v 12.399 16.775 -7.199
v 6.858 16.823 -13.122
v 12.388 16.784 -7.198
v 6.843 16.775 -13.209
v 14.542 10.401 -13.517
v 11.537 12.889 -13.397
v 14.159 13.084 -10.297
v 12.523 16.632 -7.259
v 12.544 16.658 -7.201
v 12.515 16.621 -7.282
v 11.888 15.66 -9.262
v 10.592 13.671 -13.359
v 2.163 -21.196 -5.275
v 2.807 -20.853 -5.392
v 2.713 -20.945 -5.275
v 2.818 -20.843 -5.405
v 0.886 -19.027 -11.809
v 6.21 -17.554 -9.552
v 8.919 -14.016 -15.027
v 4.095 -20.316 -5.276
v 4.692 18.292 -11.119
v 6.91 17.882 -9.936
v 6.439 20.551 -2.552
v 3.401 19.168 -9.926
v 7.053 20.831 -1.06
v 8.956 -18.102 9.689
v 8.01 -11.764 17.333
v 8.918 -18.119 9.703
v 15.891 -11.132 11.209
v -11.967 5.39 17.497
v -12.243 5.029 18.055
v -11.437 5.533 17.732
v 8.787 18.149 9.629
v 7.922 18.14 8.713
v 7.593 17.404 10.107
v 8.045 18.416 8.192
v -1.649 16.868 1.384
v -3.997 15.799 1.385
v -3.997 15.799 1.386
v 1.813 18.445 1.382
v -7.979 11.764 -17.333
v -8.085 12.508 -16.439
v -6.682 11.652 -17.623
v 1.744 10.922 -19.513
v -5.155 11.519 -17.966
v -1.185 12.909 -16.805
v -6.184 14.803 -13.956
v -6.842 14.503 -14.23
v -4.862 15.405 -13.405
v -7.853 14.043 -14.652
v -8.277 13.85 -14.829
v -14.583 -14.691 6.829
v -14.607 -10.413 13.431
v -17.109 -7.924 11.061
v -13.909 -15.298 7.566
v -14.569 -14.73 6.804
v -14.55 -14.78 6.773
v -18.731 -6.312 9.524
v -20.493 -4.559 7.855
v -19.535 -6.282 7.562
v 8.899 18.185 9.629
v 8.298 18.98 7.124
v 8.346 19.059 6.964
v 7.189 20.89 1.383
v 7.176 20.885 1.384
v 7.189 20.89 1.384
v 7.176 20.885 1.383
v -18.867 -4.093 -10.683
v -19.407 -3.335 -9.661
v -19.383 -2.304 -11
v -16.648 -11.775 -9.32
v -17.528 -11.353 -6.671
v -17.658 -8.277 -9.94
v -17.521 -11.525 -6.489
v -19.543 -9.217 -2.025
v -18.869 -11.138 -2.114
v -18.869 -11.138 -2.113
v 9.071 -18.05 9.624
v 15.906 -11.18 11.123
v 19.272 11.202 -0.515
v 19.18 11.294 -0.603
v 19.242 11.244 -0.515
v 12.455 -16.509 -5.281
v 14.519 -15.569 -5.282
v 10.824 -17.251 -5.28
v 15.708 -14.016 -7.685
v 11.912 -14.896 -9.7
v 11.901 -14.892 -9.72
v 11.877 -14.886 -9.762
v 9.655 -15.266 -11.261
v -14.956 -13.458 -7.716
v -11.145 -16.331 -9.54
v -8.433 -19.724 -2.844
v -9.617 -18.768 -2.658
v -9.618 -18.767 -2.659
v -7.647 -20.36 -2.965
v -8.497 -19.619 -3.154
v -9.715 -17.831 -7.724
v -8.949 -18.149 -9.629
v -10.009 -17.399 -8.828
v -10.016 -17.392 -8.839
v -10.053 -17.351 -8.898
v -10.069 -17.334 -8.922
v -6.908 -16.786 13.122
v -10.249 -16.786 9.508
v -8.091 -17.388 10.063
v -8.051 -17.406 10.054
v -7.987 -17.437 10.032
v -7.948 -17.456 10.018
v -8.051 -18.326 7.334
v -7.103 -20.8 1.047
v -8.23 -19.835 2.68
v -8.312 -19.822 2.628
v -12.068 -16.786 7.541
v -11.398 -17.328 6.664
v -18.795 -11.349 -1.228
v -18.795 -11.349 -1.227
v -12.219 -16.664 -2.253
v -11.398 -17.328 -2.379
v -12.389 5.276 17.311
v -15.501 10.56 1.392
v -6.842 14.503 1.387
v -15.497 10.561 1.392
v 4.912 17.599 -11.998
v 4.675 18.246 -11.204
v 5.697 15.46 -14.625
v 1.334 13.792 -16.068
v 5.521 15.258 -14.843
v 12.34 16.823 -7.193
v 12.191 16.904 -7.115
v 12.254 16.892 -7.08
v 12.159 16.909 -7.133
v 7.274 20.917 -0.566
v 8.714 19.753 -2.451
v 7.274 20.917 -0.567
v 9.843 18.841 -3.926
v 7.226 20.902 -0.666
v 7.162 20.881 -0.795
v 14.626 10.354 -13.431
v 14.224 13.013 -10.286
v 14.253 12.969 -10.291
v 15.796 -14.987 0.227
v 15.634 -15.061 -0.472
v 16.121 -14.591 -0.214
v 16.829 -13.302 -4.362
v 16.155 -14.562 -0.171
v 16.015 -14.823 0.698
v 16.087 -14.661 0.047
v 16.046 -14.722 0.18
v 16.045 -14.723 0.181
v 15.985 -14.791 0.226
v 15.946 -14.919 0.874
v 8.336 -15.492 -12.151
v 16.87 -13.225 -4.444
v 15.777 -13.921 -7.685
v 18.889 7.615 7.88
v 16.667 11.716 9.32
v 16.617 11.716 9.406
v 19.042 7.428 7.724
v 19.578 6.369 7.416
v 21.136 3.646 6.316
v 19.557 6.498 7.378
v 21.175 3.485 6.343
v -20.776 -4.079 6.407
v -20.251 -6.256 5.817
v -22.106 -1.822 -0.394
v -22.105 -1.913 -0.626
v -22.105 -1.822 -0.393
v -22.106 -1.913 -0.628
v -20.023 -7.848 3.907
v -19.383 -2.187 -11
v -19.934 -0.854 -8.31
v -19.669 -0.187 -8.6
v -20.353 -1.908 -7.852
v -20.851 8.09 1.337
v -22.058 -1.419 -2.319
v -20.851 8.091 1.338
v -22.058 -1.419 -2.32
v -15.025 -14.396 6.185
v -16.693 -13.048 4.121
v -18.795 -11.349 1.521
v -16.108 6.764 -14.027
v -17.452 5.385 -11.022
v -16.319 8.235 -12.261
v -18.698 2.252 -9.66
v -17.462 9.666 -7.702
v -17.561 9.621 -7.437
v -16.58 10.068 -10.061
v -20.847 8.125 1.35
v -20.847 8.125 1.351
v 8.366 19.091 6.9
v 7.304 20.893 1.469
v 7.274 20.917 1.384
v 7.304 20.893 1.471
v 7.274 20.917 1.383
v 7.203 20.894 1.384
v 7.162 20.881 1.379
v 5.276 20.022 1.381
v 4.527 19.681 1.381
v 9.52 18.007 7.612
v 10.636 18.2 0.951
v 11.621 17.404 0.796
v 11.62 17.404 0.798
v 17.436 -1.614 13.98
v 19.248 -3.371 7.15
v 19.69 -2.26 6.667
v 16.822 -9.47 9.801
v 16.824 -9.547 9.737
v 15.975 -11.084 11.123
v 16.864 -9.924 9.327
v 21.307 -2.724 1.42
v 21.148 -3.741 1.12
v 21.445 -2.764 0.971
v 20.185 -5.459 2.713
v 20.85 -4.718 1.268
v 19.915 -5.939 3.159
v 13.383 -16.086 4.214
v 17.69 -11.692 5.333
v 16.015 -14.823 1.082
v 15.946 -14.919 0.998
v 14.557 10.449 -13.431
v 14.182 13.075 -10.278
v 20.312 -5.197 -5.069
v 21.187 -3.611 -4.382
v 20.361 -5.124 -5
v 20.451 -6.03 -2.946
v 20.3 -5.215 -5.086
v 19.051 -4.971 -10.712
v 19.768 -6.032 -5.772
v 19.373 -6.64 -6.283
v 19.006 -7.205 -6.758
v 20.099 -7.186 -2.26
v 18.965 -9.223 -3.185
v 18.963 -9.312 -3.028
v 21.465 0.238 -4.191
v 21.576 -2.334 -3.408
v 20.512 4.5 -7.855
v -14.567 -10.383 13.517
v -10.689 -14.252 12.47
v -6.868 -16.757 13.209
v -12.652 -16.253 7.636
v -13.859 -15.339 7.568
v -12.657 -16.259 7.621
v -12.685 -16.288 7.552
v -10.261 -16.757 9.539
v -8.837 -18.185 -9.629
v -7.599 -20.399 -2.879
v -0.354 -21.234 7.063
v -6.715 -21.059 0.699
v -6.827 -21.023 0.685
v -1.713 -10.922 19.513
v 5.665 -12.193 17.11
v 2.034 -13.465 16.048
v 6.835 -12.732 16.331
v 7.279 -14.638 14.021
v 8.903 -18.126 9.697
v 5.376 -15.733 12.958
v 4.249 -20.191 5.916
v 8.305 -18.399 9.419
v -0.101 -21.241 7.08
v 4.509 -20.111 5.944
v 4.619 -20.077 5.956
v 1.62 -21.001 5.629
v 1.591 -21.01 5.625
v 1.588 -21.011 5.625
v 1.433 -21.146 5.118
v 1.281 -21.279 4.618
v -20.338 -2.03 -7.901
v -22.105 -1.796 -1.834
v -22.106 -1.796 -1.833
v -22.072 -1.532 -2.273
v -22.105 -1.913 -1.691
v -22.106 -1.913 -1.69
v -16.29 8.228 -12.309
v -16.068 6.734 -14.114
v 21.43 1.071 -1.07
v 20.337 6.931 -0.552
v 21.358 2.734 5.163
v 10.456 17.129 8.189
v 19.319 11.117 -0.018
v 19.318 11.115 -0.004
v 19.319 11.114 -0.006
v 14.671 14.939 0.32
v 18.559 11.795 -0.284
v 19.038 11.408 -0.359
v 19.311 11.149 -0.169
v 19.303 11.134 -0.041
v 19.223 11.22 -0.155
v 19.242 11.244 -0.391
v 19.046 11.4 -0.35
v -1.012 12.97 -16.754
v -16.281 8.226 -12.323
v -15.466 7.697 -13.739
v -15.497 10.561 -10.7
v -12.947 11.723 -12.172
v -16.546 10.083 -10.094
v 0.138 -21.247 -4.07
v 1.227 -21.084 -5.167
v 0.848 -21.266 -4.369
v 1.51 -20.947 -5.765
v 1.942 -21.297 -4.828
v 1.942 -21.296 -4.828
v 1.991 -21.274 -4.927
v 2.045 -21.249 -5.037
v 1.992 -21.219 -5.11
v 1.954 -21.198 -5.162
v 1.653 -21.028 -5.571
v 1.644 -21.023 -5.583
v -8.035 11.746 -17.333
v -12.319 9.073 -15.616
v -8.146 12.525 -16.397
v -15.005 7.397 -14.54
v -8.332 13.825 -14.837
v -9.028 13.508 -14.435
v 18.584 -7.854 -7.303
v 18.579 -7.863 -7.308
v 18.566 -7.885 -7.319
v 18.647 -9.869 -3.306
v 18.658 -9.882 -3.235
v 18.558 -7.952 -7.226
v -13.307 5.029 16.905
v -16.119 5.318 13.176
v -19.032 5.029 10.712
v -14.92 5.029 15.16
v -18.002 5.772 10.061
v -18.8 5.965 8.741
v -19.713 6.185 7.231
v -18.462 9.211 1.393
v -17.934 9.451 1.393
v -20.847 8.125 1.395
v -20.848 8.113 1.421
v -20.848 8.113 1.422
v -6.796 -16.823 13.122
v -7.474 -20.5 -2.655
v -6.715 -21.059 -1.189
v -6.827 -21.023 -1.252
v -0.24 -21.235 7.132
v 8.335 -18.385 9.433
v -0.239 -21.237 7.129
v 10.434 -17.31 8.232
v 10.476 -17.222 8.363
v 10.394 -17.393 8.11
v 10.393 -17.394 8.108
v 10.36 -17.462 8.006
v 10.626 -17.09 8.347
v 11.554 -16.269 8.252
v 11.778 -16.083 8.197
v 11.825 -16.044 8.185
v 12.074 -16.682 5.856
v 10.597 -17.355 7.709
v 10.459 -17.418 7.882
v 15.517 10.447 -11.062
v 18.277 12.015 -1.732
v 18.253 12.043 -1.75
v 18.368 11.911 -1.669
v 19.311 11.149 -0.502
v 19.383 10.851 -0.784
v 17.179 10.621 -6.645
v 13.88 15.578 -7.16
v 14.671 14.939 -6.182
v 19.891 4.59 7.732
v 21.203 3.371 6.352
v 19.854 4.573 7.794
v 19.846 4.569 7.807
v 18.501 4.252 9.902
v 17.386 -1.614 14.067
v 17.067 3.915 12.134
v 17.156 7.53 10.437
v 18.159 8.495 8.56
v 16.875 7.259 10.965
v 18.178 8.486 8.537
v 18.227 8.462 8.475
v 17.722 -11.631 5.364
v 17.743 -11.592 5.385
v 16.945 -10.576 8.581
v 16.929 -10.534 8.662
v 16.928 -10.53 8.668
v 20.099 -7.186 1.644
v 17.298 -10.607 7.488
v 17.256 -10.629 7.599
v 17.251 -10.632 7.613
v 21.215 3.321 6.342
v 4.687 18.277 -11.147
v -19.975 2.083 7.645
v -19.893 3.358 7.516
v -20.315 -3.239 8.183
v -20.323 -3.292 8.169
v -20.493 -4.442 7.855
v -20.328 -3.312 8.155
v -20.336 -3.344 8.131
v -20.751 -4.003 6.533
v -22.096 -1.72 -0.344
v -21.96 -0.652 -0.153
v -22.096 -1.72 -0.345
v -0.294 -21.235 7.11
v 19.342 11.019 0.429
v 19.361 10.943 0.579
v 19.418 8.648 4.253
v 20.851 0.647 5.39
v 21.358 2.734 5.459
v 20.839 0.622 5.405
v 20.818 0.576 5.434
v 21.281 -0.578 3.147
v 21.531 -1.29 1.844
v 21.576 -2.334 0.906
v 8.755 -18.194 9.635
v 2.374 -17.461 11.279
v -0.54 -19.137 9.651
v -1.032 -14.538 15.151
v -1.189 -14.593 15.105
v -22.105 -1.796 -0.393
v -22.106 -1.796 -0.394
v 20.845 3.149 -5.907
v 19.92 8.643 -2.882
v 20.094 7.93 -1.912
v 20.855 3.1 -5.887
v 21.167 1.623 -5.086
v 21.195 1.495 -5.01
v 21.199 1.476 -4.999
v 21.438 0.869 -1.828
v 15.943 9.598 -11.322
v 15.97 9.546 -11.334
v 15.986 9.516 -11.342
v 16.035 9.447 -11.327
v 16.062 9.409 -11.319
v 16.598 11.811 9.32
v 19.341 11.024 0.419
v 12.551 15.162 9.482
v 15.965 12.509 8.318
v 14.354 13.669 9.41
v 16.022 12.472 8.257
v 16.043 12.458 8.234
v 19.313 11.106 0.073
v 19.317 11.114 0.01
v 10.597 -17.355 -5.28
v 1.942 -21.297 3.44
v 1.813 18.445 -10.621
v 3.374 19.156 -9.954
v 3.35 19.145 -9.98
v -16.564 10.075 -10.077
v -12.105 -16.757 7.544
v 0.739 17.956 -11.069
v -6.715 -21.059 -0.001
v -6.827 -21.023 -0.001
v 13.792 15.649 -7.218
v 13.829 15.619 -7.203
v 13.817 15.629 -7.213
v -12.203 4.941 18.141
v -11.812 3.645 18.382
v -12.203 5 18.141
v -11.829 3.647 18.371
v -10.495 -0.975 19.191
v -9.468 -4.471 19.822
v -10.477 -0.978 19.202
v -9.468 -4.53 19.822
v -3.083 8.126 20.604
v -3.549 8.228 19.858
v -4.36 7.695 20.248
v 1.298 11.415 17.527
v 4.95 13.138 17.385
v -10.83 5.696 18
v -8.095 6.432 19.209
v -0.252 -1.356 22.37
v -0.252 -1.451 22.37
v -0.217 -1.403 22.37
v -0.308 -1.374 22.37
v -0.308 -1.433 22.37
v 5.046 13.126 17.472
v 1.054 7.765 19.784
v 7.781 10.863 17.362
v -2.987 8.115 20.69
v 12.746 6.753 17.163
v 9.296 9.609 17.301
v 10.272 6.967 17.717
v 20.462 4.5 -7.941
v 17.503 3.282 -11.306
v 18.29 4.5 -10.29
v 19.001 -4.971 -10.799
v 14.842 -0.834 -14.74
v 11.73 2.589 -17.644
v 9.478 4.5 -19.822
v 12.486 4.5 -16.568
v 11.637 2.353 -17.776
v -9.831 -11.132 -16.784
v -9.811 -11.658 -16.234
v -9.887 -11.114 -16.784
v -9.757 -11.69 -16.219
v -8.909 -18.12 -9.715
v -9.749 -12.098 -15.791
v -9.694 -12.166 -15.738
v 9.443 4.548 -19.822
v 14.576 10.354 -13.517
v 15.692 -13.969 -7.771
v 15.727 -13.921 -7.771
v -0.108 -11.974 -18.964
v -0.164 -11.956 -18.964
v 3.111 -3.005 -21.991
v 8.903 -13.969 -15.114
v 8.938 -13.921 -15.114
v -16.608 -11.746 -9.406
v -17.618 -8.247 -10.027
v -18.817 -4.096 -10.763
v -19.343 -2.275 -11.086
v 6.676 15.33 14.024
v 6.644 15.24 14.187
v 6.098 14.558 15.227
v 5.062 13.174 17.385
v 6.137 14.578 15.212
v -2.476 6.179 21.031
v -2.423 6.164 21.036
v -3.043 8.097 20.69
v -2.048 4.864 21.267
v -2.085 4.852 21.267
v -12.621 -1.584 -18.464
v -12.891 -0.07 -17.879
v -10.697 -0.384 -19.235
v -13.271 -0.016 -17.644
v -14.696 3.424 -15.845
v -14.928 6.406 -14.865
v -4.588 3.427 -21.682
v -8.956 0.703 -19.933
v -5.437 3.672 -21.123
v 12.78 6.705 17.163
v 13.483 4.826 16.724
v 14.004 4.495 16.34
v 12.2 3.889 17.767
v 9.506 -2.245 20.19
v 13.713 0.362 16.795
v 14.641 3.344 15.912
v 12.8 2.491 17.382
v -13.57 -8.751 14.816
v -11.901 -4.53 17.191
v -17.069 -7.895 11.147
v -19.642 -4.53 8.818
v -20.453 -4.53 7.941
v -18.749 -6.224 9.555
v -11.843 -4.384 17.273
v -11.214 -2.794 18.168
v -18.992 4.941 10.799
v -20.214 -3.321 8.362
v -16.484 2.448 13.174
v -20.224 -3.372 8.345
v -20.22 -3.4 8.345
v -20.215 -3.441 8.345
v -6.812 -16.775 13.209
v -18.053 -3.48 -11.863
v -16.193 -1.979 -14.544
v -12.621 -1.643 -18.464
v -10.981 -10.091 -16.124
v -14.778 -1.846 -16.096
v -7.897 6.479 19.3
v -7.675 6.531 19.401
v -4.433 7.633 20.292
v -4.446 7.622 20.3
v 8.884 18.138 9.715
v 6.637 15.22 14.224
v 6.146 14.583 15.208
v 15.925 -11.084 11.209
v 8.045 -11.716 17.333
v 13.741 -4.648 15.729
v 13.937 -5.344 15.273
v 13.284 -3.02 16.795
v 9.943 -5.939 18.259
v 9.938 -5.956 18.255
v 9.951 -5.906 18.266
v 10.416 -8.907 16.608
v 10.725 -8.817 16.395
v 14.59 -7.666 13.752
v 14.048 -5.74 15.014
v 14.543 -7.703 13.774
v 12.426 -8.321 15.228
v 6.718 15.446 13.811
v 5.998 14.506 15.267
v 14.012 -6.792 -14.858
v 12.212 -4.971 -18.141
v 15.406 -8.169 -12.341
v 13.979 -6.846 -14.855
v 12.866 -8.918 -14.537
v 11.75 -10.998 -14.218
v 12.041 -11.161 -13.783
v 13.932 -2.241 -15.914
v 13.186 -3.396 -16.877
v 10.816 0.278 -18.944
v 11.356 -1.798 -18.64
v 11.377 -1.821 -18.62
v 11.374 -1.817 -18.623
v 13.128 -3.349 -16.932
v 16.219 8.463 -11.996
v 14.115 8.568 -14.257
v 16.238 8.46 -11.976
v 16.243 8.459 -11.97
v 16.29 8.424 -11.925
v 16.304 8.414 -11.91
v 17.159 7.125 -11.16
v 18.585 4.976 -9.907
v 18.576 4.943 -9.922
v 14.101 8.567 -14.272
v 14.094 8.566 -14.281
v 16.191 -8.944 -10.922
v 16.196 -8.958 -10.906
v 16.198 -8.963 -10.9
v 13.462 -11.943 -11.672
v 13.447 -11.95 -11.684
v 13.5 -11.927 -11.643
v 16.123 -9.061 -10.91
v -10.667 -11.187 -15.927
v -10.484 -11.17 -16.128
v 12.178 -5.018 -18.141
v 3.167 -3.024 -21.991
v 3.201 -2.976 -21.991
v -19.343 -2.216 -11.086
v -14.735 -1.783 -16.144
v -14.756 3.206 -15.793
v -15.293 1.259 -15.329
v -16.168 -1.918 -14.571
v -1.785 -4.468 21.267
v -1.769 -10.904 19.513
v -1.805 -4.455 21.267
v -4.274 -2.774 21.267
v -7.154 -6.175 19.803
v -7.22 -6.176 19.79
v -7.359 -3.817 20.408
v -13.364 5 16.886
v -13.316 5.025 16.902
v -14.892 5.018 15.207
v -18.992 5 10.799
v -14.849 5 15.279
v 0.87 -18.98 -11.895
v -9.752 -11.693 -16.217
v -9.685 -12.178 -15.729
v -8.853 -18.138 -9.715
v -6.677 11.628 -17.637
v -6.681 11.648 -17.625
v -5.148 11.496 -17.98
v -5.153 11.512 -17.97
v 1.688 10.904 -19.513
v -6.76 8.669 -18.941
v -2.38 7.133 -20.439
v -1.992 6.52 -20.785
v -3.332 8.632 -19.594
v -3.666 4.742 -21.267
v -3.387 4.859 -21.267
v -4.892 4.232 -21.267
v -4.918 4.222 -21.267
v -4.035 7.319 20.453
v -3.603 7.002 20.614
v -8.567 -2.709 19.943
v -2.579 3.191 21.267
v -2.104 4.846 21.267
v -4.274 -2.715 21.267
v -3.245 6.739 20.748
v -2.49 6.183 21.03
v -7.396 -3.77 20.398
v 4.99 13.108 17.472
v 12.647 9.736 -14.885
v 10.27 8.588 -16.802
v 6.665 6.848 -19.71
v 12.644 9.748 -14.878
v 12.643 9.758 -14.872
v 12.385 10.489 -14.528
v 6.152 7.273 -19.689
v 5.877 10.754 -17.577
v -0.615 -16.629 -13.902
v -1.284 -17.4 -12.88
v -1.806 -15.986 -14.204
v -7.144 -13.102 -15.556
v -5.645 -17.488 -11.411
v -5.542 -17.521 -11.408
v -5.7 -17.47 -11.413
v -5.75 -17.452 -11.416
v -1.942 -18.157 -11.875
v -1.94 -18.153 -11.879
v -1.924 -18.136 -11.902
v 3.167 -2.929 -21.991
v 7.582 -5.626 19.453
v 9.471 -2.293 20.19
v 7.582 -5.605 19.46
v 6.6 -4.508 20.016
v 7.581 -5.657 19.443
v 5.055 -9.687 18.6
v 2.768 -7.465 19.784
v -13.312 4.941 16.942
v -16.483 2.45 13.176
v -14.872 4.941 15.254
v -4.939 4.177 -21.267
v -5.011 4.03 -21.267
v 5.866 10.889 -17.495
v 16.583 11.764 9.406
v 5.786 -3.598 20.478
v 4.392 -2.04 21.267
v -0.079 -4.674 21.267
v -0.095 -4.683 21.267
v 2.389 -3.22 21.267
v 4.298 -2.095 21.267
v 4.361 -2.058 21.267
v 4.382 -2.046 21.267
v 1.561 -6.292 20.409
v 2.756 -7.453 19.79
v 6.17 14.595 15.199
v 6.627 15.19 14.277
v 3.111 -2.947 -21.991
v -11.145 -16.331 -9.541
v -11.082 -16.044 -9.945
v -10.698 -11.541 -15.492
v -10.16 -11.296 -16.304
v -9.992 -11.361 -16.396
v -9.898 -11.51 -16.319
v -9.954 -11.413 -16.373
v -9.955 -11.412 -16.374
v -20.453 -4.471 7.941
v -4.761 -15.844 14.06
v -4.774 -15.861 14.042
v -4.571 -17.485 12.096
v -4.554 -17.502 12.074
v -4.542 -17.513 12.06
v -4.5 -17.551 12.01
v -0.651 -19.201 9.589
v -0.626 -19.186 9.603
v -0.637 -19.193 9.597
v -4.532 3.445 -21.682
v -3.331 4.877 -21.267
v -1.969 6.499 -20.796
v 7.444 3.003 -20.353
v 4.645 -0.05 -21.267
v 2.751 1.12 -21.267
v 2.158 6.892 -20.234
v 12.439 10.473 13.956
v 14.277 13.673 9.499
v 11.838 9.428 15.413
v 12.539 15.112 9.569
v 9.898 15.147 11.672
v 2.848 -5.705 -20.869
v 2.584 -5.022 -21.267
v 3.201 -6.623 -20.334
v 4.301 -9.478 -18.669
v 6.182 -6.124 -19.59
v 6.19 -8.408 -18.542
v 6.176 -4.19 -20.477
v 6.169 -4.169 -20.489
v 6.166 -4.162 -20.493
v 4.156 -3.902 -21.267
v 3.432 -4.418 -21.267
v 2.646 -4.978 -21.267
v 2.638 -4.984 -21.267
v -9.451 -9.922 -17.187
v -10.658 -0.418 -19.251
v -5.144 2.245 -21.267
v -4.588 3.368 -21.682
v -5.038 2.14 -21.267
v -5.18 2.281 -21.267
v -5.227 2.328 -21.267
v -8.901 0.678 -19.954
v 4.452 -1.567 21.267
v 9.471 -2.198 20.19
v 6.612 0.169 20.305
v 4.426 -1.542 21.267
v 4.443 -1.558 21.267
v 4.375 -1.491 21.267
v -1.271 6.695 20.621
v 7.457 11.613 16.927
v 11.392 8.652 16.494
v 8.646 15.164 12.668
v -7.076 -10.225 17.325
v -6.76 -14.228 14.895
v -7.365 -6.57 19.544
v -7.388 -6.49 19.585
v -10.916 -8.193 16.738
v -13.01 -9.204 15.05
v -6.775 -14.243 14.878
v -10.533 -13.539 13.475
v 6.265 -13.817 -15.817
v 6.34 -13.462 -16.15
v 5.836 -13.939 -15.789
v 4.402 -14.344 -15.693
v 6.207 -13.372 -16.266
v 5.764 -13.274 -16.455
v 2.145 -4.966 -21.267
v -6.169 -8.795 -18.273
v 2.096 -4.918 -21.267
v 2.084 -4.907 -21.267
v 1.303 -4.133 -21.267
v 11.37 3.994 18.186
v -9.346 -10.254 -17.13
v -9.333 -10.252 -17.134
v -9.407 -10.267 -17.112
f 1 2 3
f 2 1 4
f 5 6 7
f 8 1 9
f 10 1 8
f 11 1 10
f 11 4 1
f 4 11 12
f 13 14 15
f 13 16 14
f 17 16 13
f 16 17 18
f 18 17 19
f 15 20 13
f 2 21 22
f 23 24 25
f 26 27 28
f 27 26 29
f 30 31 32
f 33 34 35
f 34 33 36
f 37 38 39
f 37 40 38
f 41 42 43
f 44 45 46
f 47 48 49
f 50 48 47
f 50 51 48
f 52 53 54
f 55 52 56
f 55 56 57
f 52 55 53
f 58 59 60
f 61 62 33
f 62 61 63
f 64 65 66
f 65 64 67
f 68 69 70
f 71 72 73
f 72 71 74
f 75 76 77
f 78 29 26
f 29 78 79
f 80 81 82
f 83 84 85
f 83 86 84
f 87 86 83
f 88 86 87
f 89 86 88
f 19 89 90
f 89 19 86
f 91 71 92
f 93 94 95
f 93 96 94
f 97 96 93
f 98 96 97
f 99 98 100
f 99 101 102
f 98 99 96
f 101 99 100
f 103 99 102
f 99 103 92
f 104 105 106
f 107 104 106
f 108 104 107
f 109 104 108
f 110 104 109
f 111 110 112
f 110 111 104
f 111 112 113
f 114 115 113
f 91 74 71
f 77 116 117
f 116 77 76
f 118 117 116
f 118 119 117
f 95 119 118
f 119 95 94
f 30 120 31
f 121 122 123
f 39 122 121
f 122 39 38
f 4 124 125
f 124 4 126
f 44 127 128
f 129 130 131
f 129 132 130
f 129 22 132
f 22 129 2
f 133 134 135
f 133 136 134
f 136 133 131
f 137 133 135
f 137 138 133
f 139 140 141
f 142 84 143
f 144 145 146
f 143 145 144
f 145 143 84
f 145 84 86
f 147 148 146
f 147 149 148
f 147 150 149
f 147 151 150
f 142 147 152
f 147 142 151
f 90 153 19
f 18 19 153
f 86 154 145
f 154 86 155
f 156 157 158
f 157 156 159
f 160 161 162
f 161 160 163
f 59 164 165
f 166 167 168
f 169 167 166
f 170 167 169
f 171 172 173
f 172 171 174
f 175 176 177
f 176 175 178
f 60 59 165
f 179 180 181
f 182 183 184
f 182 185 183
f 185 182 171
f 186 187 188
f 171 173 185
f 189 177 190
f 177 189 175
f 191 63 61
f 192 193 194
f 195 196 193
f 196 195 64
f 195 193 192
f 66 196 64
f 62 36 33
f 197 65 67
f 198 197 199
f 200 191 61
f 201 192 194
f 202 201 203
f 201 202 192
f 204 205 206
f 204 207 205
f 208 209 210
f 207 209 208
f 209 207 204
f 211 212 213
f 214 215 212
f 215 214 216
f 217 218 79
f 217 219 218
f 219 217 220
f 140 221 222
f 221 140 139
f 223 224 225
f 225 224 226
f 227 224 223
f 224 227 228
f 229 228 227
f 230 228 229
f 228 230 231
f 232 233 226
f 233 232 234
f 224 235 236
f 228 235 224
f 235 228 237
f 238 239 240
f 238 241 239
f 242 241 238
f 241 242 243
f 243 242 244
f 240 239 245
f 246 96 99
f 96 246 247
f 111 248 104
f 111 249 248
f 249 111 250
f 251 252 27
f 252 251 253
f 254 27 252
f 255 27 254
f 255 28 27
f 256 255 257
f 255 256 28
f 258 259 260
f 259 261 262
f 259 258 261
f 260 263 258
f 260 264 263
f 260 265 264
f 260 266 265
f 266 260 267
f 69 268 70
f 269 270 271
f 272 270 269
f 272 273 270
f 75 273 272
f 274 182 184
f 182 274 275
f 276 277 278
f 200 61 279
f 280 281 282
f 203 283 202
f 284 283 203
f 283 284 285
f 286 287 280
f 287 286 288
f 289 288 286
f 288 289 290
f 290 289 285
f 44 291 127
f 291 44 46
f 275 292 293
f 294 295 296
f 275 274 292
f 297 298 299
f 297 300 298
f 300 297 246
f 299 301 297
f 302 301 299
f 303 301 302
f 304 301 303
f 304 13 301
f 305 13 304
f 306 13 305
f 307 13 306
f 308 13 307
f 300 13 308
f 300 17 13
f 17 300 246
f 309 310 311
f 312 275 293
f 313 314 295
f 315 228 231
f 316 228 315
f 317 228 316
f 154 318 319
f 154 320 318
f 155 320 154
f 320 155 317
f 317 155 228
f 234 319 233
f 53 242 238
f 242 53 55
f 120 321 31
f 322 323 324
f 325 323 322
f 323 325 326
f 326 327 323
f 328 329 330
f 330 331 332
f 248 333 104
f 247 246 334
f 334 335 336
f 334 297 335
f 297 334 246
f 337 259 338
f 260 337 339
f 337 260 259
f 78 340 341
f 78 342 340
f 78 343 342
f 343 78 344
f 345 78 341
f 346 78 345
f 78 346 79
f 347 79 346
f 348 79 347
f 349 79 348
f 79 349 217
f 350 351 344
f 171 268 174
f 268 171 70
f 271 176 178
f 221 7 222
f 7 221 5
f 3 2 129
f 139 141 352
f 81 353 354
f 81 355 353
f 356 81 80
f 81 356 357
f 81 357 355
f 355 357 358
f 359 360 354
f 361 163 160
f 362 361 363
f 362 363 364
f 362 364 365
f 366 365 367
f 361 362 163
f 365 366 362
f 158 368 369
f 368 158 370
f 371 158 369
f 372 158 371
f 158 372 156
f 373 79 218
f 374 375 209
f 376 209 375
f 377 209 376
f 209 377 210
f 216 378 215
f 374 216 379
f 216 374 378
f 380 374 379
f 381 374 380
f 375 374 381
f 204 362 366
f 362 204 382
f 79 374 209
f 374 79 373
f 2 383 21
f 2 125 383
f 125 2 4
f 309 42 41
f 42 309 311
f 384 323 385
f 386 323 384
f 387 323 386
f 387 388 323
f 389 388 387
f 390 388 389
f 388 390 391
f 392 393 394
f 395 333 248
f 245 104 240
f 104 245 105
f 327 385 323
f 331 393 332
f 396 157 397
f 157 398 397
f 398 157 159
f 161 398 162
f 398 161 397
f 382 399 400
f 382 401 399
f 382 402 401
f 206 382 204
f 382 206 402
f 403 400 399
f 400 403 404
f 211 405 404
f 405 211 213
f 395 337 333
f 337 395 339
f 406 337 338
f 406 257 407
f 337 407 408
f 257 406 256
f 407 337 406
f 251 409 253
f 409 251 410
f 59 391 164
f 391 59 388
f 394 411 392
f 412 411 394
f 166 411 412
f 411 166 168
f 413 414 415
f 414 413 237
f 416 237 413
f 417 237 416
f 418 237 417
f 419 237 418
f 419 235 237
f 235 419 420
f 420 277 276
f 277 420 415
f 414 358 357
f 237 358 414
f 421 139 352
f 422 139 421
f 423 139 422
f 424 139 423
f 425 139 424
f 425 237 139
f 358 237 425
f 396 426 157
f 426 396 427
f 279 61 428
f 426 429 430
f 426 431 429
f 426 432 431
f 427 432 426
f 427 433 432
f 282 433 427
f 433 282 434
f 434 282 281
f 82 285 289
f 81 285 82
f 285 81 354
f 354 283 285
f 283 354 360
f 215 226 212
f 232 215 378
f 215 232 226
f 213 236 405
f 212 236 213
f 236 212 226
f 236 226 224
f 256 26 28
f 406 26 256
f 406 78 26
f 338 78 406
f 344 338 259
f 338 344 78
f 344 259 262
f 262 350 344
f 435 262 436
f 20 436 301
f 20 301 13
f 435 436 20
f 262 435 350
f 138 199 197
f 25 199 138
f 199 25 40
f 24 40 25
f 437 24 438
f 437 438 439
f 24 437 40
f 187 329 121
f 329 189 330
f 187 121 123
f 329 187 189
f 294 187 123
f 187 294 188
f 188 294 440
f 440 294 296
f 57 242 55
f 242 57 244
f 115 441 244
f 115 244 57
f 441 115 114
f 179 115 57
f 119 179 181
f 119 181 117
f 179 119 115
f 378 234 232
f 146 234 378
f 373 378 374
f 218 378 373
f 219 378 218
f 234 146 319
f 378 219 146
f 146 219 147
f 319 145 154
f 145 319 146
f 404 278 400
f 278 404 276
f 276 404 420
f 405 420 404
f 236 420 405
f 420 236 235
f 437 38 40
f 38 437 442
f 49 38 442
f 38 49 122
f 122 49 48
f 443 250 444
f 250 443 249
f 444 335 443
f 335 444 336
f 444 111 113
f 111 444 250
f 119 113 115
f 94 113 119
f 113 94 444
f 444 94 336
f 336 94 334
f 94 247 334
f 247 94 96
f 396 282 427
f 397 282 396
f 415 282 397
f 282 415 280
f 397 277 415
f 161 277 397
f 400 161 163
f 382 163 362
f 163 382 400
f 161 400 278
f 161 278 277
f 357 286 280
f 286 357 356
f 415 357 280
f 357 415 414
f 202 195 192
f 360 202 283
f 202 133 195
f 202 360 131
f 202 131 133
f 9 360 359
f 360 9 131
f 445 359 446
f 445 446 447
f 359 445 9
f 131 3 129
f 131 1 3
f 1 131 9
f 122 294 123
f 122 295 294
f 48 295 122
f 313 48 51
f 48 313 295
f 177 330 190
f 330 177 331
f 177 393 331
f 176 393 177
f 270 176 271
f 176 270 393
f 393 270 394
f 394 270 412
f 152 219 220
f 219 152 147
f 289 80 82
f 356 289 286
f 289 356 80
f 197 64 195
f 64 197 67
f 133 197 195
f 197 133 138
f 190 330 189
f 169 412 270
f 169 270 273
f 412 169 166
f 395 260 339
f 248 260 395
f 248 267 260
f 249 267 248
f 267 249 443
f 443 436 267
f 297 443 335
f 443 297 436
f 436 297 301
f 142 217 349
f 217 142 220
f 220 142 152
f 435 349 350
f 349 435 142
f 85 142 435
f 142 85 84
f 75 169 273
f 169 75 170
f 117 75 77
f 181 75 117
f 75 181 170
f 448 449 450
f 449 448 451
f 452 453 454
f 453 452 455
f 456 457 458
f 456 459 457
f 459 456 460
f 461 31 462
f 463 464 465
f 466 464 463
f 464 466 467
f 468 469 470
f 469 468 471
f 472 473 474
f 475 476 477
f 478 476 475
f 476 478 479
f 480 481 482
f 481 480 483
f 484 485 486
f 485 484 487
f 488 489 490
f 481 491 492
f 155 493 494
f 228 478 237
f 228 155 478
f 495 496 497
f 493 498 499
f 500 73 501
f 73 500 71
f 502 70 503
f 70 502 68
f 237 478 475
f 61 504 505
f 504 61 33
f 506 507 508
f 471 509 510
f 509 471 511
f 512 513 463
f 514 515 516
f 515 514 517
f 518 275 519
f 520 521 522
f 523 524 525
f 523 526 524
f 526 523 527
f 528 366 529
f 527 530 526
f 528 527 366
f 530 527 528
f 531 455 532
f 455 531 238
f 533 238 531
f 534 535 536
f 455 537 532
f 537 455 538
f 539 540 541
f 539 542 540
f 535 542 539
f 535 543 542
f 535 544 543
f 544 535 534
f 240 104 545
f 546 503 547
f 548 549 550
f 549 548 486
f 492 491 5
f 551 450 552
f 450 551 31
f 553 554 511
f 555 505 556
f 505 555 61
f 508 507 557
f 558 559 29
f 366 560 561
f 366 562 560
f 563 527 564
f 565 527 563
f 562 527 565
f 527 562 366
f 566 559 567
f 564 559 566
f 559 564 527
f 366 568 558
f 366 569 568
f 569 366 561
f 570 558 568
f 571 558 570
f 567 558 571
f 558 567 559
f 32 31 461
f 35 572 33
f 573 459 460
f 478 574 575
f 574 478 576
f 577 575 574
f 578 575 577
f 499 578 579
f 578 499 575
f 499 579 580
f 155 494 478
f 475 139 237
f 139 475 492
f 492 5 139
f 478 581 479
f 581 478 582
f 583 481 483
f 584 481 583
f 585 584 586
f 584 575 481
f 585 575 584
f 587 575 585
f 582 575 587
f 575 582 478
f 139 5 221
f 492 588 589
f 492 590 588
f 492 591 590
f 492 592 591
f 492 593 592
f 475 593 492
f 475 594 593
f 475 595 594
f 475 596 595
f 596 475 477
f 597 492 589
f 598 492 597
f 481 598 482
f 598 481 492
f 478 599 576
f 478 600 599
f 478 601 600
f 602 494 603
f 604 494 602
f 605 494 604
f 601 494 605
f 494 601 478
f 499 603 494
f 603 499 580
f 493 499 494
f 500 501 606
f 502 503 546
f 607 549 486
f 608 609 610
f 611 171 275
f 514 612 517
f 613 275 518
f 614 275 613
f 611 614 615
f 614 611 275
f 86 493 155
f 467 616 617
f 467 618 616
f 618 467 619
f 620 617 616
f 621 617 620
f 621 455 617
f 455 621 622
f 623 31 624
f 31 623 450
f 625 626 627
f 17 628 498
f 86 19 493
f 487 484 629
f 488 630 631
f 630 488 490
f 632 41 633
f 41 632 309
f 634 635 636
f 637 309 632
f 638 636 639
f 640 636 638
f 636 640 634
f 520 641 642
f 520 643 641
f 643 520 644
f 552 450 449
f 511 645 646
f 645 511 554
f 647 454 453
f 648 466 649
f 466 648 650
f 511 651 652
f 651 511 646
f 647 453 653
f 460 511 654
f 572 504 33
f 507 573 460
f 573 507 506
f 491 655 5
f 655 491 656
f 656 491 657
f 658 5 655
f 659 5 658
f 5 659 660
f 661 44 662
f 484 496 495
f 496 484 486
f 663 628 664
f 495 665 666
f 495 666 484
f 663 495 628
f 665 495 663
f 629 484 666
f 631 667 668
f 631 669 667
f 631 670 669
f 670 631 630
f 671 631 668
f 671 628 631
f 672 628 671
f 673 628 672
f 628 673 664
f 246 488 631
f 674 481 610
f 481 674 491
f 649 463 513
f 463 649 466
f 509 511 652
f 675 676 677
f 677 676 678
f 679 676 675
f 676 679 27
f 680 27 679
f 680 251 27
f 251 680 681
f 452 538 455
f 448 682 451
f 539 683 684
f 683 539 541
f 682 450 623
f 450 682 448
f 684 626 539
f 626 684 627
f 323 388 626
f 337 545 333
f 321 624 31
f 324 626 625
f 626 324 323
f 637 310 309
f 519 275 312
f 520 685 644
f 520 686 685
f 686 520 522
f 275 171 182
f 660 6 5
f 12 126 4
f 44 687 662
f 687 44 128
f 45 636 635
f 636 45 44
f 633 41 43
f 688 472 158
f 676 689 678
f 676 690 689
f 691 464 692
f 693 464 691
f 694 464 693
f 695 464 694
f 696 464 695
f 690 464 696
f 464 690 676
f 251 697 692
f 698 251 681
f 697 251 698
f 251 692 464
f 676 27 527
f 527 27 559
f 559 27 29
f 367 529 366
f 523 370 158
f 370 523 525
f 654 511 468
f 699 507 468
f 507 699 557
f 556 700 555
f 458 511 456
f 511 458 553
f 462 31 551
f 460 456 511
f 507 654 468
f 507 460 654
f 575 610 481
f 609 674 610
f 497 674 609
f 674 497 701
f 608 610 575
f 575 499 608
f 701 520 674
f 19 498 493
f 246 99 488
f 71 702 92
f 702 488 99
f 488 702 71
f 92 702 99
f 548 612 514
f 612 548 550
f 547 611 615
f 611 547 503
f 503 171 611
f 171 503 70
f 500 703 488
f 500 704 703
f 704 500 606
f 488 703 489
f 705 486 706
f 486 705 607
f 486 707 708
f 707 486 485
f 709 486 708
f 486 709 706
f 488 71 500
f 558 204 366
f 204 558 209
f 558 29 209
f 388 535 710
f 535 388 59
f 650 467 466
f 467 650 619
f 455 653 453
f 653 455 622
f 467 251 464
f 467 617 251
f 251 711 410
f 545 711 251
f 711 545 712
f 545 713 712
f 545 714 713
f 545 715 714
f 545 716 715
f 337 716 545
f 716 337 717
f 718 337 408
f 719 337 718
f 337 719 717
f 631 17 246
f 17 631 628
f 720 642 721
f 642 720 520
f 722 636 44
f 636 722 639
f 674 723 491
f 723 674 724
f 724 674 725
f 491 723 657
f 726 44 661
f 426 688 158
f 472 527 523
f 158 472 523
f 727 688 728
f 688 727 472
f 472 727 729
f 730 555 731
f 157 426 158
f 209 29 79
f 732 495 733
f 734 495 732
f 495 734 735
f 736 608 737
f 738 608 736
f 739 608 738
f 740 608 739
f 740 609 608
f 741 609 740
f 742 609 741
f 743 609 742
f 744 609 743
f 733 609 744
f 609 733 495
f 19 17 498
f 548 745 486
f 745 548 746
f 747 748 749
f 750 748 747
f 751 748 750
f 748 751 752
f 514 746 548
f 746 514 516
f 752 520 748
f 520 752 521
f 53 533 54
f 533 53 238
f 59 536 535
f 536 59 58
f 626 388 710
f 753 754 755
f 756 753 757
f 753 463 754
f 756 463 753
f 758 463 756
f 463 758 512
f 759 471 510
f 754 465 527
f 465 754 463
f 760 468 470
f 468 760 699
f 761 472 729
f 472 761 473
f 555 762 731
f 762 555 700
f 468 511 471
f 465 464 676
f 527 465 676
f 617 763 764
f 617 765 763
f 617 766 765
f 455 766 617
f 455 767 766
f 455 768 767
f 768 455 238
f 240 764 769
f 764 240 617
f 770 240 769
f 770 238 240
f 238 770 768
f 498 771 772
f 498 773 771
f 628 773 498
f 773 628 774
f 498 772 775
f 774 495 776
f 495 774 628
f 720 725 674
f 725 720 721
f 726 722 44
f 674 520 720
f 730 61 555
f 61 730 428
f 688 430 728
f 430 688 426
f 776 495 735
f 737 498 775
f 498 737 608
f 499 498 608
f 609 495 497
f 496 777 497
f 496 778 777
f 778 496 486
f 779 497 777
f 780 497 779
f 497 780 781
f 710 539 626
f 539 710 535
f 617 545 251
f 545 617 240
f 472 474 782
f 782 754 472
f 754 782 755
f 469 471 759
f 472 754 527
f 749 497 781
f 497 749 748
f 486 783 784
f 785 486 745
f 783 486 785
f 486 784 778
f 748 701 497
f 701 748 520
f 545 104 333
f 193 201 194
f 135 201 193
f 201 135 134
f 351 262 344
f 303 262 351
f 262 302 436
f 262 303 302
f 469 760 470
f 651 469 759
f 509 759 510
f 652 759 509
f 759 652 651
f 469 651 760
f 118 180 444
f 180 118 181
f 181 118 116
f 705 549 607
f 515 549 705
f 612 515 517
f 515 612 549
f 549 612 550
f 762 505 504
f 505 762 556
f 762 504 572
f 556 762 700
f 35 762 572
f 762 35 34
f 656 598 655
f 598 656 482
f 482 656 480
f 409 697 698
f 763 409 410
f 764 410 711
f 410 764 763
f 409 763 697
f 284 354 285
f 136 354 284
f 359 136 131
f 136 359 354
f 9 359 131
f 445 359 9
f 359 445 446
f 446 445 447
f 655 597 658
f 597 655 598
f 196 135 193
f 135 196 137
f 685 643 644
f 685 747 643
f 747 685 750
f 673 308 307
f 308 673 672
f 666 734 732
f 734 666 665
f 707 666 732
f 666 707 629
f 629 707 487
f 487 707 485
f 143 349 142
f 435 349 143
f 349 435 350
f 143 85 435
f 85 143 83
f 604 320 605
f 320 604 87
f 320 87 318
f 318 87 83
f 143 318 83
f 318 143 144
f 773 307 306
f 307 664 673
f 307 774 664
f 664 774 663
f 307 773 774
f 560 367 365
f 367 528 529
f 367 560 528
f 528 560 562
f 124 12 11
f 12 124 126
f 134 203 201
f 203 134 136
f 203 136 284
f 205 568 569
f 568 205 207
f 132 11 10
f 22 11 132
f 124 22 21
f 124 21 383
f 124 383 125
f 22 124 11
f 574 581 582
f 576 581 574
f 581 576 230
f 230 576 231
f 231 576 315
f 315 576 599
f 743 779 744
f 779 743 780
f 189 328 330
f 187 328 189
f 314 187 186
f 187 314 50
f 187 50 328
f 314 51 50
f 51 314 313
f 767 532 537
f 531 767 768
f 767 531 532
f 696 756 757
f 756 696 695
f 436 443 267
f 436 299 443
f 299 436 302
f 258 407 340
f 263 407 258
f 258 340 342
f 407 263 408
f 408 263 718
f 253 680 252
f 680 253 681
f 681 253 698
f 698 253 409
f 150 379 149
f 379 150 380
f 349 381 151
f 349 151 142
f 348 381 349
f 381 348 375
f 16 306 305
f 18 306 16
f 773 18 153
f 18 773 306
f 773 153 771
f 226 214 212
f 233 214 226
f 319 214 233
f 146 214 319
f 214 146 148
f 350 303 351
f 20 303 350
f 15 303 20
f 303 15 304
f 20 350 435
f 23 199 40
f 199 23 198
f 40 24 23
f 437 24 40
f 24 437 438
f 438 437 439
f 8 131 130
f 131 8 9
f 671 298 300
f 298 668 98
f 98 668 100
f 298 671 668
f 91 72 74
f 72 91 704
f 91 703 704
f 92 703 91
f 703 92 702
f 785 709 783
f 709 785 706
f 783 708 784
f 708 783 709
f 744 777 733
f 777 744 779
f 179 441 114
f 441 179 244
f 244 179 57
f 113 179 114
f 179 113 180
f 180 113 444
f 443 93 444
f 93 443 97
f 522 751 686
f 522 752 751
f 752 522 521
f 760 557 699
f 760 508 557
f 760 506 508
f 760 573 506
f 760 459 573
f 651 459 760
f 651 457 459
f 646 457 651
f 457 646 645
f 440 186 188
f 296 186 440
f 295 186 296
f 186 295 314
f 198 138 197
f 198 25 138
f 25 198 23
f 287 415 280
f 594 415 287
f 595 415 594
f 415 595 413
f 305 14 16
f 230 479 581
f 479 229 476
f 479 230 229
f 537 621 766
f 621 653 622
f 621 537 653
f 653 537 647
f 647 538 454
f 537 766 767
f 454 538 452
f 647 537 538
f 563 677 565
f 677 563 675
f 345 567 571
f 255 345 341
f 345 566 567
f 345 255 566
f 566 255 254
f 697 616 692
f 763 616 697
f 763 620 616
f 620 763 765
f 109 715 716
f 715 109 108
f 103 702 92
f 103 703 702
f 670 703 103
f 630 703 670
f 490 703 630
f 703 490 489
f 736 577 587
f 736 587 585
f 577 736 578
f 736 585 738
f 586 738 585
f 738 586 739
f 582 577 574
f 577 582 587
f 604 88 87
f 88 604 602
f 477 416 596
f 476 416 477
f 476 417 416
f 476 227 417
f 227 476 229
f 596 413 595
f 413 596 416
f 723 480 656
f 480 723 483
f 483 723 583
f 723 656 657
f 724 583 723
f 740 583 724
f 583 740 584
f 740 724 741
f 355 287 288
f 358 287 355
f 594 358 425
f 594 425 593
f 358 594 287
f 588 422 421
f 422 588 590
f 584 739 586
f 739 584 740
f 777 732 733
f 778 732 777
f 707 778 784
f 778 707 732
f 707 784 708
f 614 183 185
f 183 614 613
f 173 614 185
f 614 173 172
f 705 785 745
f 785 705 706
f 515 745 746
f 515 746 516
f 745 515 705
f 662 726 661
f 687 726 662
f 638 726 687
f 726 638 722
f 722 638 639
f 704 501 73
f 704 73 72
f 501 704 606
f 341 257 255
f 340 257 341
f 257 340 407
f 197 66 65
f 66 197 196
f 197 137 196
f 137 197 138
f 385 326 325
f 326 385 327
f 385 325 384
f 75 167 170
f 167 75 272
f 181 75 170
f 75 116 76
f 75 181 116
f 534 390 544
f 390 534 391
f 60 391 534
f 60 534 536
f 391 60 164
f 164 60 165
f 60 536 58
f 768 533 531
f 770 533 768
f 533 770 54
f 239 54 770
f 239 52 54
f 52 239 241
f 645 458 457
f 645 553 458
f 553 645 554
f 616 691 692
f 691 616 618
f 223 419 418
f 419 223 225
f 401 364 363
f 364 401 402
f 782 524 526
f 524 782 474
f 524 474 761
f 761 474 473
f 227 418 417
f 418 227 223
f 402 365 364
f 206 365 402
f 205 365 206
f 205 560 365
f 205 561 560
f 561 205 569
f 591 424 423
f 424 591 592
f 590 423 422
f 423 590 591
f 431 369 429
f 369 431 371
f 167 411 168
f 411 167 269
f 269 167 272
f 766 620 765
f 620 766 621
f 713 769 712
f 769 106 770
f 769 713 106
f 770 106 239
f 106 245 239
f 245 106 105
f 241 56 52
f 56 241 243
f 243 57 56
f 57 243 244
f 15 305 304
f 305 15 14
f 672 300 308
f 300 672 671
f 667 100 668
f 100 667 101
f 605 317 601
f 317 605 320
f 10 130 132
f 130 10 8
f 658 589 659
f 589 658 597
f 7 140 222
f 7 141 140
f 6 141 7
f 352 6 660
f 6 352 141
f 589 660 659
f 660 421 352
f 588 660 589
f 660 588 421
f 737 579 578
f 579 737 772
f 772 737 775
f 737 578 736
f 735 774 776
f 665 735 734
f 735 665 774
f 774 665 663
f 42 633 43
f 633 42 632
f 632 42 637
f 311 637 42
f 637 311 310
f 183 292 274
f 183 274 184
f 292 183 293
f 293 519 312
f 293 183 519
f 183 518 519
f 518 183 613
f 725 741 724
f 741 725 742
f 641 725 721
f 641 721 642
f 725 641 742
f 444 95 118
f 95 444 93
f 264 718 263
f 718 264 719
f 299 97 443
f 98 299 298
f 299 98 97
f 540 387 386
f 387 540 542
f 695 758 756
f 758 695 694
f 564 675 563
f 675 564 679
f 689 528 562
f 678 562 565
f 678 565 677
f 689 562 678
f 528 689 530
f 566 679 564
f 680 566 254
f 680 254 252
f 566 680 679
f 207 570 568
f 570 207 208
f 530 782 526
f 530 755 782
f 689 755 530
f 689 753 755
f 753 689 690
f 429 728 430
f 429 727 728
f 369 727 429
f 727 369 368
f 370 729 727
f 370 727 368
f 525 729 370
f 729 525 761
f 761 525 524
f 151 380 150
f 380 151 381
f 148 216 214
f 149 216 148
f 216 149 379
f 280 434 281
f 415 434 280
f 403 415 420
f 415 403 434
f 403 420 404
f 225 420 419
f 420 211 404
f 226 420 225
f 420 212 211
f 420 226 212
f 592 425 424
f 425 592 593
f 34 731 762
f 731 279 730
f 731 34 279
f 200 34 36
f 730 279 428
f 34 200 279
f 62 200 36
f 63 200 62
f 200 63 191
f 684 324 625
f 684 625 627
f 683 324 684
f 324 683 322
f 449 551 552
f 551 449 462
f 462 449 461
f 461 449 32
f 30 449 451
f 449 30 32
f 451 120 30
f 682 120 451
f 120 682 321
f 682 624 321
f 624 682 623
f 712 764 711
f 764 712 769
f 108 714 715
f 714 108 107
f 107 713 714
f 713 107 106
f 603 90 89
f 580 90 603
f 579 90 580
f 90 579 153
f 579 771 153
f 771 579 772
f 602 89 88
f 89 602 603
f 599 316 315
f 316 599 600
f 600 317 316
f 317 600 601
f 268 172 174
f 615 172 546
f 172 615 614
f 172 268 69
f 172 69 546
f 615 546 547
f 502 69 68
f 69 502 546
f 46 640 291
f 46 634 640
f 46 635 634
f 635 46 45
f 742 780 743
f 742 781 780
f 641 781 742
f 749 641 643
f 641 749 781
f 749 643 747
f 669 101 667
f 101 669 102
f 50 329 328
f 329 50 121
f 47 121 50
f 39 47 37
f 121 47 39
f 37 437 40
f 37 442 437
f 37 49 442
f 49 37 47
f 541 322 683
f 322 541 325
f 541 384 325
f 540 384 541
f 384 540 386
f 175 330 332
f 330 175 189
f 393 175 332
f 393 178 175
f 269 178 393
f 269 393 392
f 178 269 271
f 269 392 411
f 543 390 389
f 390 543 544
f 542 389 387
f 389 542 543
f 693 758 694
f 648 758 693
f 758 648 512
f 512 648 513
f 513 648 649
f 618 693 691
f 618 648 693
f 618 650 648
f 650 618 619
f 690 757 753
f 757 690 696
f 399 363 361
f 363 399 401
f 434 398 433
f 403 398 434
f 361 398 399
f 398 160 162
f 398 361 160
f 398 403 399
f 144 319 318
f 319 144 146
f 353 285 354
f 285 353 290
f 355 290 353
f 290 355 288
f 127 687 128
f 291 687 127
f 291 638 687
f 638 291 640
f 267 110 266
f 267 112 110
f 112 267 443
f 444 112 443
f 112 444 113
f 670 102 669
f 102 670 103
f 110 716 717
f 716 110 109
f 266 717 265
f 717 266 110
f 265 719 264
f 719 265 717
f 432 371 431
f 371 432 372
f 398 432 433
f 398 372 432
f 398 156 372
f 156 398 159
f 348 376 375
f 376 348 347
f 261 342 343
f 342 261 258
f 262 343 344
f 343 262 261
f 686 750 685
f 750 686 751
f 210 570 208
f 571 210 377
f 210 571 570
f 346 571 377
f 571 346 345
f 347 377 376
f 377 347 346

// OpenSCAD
// Auto-generated OpenSCAD file

    inner_points = 10*[[-0.6761707289295088, 1.4443912429777448, 1.6180428150467039], [1.2603258031723903, -0.12076505073214727, -1.8089878045154844], [-0.4714605992542724, 0.6029023975518815, 2.1180331007845328], [1.465035932847627, -0.9622538961580105, -1.3089975187776557], [-1.541683511369511, 1.050210284169558, 1.3089975187776557], [0.3948130207323881, -0.514946009540334, -2.1180331007845328], [-1.3369733816942744, 0.20872143874369475, 1.8089878045154844], [0.5995231504076245, -1.3564348549661973, -1.6180428150467039], [1.463934226922532, 1.4843529255560477, 0.8090793922871596], [1.921079046691184, 1.1148696448288868, 6.720509726276802e-05], [1.2820322182132897, -0.6276002421239685, 1.6708412238007613], [1.7391770379819418, -0.9970835228511294, 0.8618290366108644], [-2.202436754888304, -0.18542441139147592, -0.5000574908350913], [-1.7452919351196523, -0.5549076921186369, -1.3090696780249882], [-1.1317568977713777, -1.7269135363970753, 0.8089588950643893], [-0.674612078002726, -2.0963968171242366, -5.329212550742035e-05], [0.18942199934983583, 1.838629008812172, -1.308979864697917], [0.5994432045682823, -1.3564916619924376, 1.6180251609669651], [1.0565880243369343, -1.7259749427195985, 0.8090129737770685], [-0.6760907830901666, 1.4444480500039851, -1.6180251609669651], [-0.26606957787172014, -1.7506726208006245, 1.308979864697917], [0.1910752418969318, -2.1201559015277853, 0.49996767750802007], [0.5206899199254378, 0.4770998592723383, -2.118012576336173], [-0.5973374984473221, -0.3891434712607908, 2.118012576336173], [1.0566279972566053, -1.7259465392064783, -0.8090210142297662], [0.9289932050541309, 1.2407181409580579, 1.6180788946703704], [2.1258138809894067, 0.2733983537395316, -0.49994250870567225], [-2.202461459511291, -0.1854419657279841, 0.49994250870567225], [-1.005640783576015, -1.1527617529465104, -1.6180788946703704], [0.7243230482985655, 2.082235389897041, -0.4999453790742929], [1.9428501392747406, 0.6080804112866934, 0.8618622458659101], [-1.5416188338268535, 1.050256242019186, -1.3090364687699425], [-1.871368076395344, -1.1290310720560819, -0.500065876297063], [0.18935732180717835, 1.8385830509625434, 1.3090541228496813], [1.6687090341404256, 0.6429100379798126, -1.3089643095226098], [0.5205852694631093, 0.47702549790959015, 2.1180553992182594], [1.9999369817963566, -0.7186475150731406, -0.4999630331540315], [-2.0765845603182407, 0.8066039030846881, 0.4999630331540315], [-0.5972328479849937, -0.38906910989804266, -2.1180553992182594], [-1.7453566126623097, -0.5549536499682651, 1.3089643095226098], [-0.26600490032906265, -1.750626662950996, -1.3090541228496813], [0.7242983436755794, 2.082217835560533, 0.5000546204664706], [1.463974199842203, 1.4843813290691679, -0.8089545957196747], [1.4079091174063396, 0.3644456266887037, 1.6708617482491208], [2.1475849735729633, -0.2333908798026617, 0.3618525320629751], [-2.0765598556952543, 0.8066214574211964, -0.5000369663867321], [-1.336883999528631, 0.20878495092983085, -1.8090461825728774], [-1.8713927810183302, -1.1290486263925898, 0.4999341232437007], [-1.1317169248517065, -1.7268851328839554, -0.8090750929424451], [0.9290731508934732, 1.2407749479842982, -1.6179890813432987], [0.39470837027005956, -0.5150203709030822, 2.1180348747699], [1.591529046205335, -1.4823401581216085, 1.3471393857822367e-05], [-0.47135594879194387, 0.6029767589146297, -2.1180348747699], [-1.0057207294153574, -1.1528185599727507, 1.6179890813432987], [0.19109994651991802, -2.120138347191277, -0.5000323220327436]];

    outer_points = 10*[[0.02552547509395009, 2.1187272483769695, -0.7045645993136277], [-1.3615932646610294, -1.6727578892770014, 0.5779384076102413], [0.6827172728374509, 1.6727578892770014, -1.3121913529400864], [-0.7044014669175285, -2.1187272483769695, -0.029688346016217504], [0.7044014669175285, 2.1187272483769695, 0.029688346016217504], [-0.6827172728374509, -1.6727578892770014, 1.3121913529400864], [1.3615932646610294, 1.6727578892770014, -0.5779384076102413], [-0.02552547509395009, -2.1187272483769695, 0.7045645993136277], [-1.6027511659773777, 0.6705087936332265, -1.4027382632260594], [-1.9302054814233927, -0.22453943453325823, -1.099980372244143], [0.315133473353602, -0.29761058586558886, -2.1904763889740115], [-0.012320842092413131, -1.1926588140320735, -1.8877184979920947], [1.273013683679892, 0.6705087936332265, 1.7076071258706018], [0.945559368233877, -0.22453943453325823, 2.0103650168525182], [2.2084197579852707, -0.29761058586558886, -0.1427518448945897], [1.8809654425392557, -1.1926588140320735, 0.16000604608732683], [-1.8951197183831776, 0.4970541464314976, 1.0712265894806337], [1.2162437265595991, -0.4970541464314976, -1.8054795348104788], [0.8887894111135841, -1.3921023745979824, -1.5027216438285624], [-1.2162437265595991, 0.4970541464314976, 1.8054795348104788], [1.8951197183831776, -0.4970541464314976, -1.0712265894806337], [1.5676654029371626, -1.3921023745979824, -0.7684686984987172], [-1.4526456533333216, -1.0353759855059943, 1.3430879167013183], [1.4526456533333216, 1.0353759855059943, -1.3430879167013183], [0.26790481028680946, -2.2029389255707184, -0.24769957676650906], [-0.7994549424817525, 1.1716333414551139, -1.7245912807479955], [-1.6567414700822498, -1.1716333414551139, -0.9319608317951029], [1.6567414700822498, 1.1716333414551139, 0.9319608317951029], [0.7994549424817525, -1.1716333414551139, 1.7245912807479955], [-2.077531341052028, 0.8067661495823462, 0.13805753994051662], [-1.258091130637894, -0.16135322991646922, -1.8377268076908435], [-0.3002109203116041, 0.8067661495823462, 2.06035670715377], [1.7336395829106201, -0.16135322991646922, 1.3980439582719861], [-0.8905073311540451, 1.809015245226121, -0.9594417716569185], [-1.9501717554630091, -1.0874216642613652, 0.020303344285033886], [0.1728513347225853, 1.0874216642613652, -1.9426025114982872], [-0.8868130895863787, -1.809015245226121, -0.9628573955563348], [0.8868130895863787, 1.809015245226121, 0.9628573955563348], [-0.1728513347225853, -1.0874216642613652, 1.9426025114982872], [1.9501717554630091, 1.0874216642613652, -0.020303344285033886], [0.8905073311540451, -1.809015245226121, 0.9594417716569185], [-1.6938035546496701, 1.3078906974042335, -0.6375887541349824], [-2.2236357668041524, -0.14032775733950953, -0.1477161961640061], [-0.454794907142269, 0.33977131790541826, -2.15957982521278], [-0.9846271192967511, -1.1084471368383249, -1.6697072672418034], [0.503085303184021, 1.3078906974042335, 1.7385036896318335], [-0.02674690897046106, -0.14032775733950953, 2.22837624760281], [2.117367369312978, 0.33977131790541826, 0.6223976641964872], [1.5875351571584961, -1.1084471368383249, 1.1122702221674634], [-2.041224144135302, -0.4500397604903581, 0.7854528533761111], [0.9427797152184564, 0.4500397604903581, -1.9734990752595192], [0.0854931876179591, -1.8932269224198697, -1.1808686263066264], [-0.9427797152184564, -0.4500397604903581, 1.9734990752595192], [2.041224144135302, 0.4500397604903581, -0.7854528533761111], [1.1839376165348048, -1.8932269224198697, 0.00717759557678177]];

    // Convex hull for inner set (I)
    module inner_hull() {
        hull() {
            for (p = inner_points) {
                translate(p) sphere(r=0.1);
            }
        }
    }

    // Convex hull for outer set (O) minus inner hull (O \ I)
    module outer_minus_inner() {
        difference() {
            hull() {
                for (p = outer_points) {
                    translate(p) sphere(r=0.1);
                }
            }
            inner_hull(); // Subtract inner hull
        }
    }

    // Convex hull for outer set (O) minus all translated inner hulls
    module outer_minus_AllTranslationInner() {
        difference() {
            hull() {
                for (p = outer_points) {
                    translate(p) sphere(r=0.1);
                }
            }
            hull() {
                translate([0,0,50]) inner_hull();
                translate([0,0,-50]) inner_hull();
            }; // Subtract translated inner hulls
        }
    }

    // Difference between outer_minus_inner and outer_minus_AllTranslationInner
    module outer_minus_inner_diff() {
        difference() {
            // Outer minus inner
            difference() {
                hull() {
                    for (p = outer_points) {
                        translate(p) sphere(r=0.1);
                    }
                }
                inner_hull();
            }

            // Subtract Outer minus AllTranslationInner
            difference() {
                hull() {
                    for (p = outer_points) {
                        translate(p) sphere(r=0.1);
                    }
                }
                hull() {
                    translate([0,0,50]) inner_hull();
                    translate([0,0,-50]) inner_hull();
                };
            }
        }
    }

    // Rendering all with colors applied
    color([1, 1, 0, 1]) outer_minus_inner_diff(); // Opaque yellow
    
